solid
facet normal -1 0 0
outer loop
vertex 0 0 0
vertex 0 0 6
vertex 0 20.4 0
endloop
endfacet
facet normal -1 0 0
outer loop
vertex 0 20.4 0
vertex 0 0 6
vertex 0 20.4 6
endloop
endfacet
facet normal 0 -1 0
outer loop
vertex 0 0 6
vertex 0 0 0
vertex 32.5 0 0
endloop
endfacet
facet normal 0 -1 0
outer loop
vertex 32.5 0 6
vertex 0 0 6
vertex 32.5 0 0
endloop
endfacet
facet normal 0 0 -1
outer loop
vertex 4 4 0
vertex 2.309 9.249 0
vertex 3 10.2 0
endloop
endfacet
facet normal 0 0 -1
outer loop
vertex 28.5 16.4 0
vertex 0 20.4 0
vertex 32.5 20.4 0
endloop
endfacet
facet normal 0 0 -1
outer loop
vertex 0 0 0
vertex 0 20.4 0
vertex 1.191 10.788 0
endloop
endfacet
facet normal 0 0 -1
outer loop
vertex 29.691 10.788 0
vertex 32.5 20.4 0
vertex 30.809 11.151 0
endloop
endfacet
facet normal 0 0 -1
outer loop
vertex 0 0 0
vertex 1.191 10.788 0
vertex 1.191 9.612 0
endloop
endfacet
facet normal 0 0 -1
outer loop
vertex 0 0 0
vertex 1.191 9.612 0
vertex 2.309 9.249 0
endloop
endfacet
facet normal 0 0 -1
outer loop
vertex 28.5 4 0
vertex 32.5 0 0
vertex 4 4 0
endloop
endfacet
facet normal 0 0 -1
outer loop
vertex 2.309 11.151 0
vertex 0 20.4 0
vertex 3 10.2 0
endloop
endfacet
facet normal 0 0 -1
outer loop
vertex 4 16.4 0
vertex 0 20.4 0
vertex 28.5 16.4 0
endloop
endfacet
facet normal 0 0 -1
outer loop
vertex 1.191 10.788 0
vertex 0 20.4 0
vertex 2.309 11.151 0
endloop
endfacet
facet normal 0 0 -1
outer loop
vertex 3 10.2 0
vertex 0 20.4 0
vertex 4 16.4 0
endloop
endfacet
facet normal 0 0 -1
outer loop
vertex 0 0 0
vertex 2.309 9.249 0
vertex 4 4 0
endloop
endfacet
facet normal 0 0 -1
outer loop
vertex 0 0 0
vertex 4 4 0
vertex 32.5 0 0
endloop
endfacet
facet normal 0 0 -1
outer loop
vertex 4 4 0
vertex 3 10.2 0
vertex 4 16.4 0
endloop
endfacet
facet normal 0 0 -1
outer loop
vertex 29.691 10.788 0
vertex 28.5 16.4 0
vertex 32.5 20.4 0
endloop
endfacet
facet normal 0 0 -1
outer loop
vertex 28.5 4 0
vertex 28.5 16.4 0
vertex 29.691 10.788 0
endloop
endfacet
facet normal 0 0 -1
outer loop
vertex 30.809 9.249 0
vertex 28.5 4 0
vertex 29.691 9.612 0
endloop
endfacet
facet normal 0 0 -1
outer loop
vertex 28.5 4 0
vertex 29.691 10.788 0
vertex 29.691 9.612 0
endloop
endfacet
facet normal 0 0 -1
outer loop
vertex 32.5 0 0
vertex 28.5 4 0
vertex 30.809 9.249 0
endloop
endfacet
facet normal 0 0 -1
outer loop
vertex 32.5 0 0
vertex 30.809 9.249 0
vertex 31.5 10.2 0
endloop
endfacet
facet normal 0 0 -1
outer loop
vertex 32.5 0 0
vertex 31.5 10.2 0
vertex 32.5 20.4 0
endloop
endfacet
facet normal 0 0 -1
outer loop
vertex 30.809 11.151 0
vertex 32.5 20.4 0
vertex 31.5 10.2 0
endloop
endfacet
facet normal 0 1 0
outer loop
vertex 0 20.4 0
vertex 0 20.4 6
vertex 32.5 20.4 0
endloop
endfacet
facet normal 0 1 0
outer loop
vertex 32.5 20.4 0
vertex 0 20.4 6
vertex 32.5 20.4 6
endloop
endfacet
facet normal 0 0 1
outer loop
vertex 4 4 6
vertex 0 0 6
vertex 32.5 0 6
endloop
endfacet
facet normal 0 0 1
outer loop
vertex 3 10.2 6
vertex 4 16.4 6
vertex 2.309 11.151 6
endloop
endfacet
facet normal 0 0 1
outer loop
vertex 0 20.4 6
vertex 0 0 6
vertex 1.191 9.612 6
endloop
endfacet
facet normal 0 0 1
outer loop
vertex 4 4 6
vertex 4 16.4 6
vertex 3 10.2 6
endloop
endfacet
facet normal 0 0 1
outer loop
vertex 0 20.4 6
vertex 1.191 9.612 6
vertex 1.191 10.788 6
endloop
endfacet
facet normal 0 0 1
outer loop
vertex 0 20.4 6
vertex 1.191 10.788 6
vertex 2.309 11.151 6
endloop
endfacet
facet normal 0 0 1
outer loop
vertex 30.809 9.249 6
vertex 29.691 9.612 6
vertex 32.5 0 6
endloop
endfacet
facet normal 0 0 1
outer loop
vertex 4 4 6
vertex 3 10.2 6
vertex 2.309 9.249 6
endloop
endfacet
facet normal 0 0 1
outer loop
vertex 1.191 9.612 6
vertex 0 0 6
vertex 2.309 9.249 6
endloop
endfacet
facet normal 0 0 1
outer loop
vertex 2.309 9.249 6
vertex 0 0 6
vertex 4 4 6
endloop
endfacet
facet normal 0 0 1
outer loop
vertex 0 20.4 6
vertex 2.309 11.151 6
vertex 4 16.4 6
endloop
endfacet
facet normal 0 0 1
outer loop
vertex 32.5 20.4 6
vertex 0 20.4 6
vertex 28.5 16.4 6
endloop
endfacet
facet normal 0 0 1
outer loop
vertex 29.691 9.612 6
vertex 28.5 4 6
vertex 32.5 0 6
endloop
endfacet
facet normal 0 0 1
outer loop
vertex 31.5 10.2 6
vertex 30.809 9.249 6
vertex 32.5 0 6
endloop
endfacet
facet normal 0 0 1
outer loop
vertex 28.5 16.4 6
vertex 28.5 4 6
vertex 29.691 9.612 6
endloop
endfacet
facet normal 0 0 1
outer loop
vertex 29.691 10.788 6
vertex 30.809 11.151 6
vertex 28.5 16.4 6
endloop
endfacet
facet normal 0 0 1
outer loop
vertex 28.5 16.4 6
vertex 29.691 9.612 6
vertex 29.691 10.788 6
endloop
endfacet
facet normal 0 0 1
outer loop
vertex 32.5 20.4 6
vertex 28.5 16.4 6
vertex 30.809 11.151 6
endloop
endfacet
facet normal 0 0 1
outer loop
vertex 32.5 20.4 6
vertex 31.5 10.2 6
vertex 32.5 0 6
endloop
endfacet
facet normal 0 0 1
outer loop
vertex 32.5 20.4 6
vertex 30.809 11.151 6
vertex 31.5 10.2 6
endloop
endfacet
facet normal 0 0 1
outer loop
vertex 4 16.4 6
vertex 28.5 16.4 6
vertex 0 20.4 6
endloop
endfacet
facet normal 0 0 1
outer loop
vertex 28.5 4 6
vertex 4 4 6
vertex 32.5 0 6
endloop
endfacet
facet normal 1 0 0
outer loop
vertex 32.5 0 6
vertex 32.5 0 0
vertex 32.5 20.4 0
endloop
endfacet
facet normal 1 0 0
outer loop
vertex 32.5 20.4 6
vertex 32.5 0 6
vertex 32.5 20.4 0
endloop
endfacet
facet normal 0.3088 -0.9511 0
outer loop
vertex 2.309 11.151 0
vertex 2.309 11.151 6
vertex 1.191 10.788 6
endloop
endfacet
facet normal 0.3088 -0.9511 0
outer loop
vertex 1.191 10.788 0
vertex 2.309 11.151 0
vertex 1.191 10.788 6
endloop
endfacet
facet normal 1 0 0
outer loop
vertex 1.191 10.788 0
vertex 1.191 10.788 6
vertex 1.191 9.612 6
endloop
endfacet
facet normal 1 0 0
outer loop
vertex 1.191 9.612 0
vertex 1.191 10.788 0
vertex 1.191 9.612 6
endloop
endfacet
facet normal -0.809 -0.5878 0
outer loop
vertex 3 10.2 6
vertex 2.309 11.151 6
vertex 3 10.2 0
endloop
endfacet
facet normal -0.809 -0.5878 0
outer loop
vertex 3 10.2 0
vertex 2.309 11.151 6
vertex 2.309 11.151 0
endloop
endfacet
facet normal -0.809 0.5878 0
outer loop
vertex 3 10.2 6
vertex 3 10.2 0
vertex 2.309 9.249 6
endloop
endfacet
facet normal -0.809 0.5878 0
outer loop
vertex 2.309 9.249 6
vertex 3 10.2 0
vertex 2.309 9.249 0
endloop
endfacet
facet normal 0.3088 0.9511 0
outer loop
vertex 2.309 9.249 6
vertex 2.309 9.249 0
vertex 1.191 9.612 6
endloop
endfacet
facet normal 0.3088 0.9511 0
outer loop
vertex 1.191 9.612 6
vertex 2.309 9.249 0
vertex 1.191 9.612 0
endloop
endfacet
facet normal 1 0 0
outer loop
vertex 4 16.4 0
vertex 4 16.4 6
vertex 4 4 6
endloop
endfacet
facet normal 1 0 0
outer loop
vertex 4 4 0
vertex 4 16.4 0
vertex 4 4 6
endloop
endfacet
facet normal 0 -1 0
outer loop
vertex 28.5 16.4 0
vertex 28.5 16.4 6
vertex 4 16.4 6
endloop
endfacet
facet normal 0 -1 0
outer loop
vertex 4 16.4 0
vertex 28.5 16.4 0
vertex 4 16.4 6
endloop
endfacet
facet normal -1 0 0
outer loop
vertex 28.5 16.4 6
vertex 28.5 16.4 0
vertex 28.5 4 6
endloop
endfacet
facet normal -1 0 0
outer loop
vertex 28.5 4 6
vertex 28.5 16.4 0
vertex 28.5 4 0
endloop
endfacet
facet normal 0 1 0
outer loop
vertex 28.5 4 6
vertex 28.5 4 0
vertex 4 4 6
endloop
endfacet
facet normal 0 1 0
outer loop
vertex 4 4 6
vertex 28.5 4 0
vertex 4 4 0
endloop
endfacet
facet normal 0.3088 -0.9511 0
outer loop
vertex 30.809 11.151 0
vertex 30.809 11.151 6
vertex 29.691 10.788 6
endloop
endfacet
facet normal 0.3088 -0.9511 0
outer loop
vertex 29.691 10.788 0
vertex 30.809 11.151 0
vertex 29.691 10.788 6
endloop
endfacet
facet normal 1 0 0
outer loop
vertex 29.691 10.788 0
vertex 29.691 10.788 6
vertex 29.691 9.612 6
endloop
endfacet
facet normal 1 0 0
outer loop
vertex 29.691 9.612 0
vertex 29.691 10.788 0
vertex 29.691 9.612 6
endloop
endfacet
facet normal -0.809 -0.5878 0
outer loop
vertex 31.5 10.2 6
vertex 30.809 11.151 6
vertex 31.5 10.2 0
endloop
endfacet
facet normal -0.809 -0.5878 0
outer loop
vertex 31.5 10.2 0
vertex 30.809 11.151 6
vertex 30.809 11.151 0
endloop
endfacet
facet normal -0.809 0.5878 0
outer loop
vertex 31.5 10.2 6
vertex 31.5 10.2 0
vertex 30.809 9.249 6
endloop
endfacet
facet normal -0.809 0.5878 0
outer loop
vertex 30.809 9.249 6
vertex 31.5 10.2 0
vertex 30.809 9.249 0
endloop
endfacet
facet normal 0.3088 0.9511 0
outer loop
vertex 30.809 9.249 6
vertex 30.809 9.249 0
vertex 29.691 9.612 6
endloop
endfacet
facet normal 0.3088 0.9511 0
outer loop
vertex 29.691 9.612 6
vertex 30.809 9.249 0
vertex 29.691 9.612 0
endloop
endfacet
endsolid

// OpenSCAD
s_l = 24.5;
s_w = 12.4;
wall = 4;
depth = 6;
sc_l = s_l + 2*wall;
sc_w = s_w + 2*wall;
off = 0.1;


module servo_holder() {
	difference(){
		cube([sc_l,sc_w,depth]);
		translate([wall, wall, -off]){
			cube([s_l, s_w, depth + 2*off]);
		}
		translate([0.5*wall, wall+0.5*s_w, -off]){
			cylinder(r=1, h=depth+2*off);
		}
		translate([1.5*wall+s_l, wall+0.5*s_w, -off]){
			cylinder(r=1, h=depth+2*off);
		}
	}
}

servo_holder();
